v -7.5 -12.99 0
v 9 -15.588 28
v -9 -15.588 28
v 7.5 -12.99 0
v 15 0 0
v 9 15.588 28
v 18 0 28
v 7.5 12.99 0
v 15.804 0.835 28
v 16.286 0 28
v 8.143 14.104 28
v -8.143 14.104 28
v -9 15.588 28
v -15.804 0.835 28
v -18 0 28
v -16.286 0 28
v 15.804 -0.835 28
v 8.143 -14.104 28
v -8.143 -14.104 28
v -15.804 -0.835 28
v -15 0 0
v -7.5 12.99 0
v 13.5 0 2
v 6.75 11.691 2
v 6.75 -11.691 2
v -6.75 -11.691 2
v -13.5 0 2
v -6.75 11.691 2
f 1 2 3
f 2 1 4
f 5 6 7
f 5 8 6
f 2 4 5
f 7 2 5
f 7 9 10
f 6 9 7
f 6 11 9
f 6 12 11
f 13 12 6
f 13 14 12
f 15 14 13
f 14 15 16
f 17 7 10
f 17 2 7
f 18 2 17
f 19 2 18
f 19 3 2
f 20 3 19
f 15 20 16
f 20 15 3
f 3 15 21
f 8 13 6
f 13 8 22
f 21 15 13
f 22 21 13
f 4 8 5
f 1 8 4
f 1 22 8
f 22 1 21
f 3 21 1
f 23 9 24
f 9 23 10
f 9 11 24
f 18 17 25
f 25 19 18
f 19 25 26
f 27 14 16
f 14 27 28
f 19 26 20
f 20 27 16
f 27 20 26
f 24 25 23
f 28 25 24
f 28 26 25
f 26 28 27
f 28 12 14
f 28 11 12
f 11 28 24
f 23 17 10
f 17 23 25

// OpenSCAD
// shot glass
difference() {

cylinder($fn=6, h=28, r1=15, r2=18, center=false);

translate([0, 0, 2])
cylinder($fn=6, h=28, r1=13.5, r2=16.5, center=false);
    
}
